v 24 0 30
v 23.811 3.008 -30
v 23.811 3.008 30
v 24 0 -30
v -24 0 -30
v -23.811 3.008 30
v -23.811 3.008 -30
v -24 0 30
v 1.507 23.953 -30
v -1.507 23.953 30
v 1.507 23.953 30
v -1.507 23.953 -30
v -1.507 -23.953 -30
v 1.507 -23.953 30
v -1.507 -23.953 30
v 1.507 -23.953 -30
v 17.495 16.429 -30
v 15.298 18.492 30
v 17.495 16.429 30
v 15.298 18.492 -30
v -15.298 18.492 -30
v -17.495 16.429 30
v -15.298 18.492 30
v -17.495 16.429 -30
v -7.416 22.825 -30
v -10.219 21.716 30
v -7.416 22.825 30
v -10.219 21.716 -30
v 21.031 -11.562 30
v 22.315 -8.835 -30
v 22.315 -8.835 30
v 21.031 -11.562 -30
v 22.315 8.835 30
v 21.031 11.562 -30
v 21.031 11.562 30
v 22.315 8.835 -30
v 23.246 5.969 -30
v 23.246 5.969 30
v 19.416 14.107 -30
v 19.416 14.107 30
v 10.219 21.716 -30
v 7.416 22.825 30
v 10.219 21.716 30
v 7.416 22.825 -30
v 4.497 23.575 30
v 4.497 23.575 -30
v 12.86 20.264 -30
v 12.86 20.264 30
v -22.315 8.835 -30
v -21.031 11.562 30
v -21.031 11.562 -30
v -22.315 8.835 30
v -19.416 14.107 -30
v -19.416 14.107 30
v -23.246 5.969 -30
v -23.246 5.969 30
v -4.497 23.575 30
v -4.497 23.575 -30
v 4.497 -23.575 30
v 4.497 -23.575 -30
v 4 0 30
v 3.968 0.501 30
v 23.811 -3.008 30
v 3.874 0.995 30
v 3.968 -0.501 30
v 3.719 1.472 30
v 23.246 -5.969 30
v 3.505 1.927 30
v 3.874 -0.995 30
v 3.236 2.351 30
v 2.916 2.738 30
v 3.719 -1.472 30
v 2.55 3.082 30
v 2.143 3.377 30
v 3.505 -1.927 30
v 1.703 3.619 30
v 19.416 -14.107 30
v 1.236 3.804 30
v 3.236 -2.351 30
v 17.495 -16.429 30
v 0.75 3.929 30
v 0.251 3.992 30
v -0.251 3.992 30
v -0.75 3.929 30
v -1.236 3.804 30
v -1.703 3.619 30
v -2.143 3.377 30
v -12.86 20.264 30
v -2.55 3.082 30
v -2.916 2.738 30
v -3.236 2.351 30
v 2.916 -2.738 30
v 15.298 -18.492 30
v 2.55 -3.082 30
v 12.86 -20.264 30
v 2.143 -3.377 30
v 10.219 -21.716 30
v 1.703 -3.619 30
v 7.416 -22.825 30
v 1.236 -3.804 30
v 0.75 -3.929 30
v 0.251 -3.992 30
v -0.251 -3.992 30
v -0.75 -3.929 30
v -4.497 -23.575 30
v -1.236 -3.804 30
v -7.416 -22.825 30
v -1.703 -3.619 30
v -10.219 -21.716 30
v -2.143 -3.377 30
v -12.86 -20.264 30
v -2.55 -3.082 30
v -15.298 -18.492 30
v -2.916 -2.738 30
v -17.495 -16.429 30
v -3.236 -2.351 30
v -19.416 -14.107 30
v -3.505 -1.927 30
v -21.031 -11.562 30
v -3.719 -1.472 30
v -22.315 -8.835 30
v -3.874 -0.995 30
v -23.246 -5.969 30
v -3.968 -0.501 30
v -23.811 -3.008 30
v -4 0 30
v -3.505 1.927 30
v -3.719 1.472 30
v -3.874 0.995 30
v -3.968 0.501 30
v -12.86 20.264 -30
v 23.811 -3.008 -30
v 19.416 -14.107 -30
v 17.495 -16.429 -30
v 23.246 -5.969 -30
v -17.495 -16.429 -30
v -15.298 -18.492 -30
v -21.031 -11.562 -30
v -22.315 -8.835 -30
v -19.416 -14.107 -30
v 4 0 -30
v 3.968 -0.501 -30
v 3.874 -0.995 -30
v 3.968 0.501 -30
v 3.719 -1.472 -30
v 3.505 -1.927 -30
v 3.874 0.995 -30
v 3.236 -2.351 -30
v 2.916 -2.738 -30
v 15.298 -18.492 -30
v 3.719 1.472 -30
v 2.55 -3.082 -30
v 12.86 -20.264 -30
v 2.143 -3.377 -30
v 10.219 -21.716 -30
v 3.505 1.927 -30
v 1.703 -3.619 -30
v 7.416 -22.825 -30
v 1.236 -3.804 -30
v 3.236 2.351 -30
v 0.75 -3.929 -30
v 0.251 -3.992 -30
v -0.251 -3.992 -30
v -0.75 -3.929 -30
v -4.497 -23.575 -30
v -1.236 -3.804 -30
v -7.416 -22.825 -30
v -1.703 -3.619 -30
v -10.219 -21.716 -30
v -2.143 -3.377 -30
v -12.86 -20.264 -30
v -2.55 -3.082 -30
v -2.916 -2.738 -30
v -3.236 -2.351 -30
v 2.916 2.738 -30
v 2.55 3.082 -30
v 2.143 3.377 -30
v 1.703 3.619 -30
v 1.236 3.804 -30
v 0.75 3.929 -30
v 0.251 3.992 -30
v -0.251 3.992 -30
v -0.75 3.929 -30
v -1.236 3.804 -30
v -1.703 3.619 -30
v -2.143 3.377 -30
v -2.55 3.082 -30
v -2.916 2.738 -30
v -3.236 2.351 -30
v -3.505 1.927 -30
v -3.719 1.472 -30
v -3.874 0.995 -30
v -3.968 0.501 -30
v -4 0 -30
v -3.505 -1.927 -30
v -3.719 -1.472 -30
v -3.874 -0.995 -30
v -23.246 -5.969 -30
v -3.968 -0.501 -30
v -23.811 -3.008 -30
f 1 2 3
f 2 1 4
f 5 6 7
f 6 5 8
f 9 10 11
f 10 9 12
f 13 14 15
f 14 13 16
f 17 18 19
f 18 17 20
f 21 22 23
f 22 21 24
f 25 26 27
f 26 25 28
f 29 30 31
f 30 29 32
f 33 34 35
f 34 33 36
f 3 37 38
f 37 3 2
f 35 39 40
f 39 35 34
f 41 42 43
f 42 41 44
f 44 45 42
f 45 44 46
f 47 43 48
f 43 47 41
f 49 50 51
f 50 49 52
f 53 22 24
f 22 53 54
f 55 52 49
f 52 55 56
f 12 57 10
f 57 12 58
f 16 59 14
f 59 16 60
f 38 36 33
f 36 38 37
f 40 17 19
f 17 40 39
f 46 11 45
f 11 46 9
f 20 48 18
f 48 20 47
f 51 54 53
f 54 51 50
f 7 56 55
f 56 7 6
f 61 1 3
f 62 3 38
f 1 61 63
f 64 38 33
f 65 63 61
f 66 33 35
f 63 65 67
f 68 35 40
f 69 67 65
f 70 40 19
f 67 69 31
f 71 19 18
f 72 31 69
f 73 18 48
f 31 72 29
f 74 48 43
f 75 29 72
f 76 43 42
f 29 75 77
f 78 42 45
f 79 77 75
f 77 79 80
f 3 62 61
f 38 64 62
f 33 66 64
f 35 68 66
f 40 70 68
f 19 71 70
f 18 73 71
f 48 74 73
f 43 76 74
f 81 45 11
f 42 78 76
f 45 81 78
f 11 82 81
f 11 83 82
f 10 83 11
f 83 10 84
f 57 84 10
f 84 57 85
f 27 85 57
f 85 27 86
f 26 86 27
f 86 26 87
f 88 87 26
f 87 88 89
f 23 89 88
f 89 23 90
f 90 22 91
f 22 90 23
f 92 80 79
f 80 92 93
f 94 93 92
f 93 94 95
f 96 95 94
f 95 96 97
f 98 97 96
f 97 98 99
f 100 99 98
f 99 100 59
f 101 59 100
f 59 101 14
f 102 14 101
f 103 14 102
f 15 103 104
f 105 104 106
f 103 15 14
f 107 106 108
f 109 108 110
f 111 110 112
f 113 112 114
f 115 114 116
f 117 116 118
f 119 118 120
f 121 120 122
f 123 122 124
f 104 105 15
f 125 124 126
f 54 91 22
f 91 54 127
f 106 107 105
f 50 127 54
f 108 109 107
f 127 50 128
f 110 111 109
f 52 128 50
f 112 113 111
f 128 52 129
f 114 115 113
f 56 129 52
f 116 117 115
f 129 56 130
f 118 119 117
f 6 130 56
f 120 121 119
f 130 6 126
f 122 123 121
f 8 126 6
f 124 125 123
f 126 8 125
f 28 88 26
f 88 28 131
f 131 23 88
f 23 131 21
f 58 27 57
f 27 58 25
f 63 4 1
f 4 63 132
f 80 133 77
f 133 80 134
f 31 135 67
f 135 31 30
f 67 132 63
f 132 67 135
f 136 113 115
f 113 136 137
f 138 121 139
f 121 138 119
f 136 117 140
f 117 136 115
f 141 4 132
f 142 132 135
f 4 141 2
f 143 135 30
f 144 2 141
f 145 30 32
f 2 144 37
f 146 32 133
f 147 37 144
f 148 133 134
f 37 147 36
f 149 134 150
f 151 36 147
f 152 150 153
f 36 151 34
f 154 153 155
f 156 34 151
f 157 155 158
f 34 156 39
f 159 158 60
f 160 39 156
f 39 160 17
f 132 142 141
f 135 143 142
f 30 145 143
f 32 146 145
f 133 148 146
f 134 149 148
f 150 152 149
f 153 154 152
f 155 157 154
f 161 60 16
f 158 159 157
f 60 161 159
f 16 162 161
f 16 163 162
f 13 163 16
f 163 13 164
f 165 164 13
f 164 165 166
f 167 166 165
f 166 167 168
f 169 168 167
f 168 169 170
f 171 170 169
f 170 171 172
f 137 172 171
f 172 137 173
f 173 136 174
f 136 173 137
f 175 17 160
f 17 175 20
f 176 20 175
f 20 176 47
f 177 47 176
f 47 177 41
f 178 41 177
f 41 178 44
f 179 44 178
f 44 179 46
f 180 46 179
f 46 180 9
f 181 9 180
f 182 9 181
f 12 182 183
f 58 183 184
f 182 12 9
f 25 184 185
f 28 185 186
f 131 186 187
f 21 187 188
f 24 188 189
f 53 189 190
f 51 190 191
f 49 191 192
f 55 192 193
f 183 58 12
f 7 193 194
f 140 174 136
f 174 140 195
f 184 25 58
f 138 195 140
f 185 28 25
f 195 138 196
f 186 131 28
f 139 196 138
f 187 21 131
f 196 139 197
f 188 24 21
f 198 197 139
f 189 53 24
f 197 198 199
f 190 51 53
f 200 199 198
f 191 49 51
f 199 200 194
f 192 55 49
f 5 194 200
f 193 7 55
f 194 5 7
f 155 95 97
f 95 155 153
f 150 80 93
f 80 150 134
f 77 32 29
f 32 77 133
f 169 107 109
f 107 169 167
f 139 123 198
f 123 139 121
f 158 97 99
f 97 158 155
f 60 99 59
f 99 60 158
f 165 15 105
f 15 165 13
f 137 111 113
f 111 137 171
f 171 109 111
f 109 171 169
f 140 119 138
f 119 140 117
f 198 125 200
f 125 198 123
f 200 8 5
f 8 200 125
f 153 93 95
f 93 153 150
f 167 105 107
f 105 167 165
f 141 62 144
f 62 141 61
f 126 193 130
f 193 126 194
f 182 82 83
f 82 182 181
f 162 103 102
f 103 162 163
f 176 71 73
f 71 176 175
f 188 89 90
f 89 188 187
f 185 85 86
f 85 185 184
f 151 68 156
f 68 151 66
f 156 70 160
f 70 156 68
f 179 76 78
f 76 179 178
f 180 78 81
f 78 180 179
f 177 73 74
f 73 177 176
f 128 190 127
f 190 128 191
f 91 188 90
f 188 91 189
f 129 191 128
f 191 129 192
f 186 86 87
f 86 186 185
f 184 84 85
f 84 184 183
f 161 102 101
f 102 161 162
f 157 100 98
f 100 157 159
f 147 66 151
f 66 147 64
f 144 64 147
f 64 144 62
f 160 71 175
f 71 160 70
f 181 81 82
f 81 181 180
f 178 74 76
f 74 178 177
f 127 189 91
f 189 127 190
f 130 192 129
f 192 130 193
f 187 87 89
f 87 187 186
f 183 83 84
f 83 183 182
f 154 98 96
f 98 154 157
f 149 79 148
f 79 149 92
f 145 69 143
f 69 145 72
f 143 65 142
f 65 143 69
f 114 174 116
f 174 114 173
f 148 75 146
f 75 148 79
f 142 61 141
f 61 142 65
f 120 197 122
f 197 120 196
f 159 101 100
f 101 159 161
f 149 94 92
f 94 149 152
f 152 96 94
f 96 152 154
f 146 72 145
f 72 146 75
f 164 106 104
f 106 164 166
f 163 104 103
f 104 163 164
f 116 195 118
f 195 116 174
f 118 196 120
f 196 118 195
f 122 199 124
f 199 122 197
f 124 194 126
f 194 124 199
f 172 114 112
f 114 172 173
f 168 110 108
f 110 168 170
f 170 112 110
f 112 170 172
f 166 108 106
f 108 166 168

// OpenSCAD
$fn = 50;


difference() {
	union() {
		translate(v = [0, 0, -30.0000000000]) {
			cylinder(h = 60, r = 24.0000000000);
		}
	}
	union() {
		translate(v = [0, 0, -100.0000000000]) {
			cylinder(h = 200, r = 4.0000000000);
		}
	}
}
